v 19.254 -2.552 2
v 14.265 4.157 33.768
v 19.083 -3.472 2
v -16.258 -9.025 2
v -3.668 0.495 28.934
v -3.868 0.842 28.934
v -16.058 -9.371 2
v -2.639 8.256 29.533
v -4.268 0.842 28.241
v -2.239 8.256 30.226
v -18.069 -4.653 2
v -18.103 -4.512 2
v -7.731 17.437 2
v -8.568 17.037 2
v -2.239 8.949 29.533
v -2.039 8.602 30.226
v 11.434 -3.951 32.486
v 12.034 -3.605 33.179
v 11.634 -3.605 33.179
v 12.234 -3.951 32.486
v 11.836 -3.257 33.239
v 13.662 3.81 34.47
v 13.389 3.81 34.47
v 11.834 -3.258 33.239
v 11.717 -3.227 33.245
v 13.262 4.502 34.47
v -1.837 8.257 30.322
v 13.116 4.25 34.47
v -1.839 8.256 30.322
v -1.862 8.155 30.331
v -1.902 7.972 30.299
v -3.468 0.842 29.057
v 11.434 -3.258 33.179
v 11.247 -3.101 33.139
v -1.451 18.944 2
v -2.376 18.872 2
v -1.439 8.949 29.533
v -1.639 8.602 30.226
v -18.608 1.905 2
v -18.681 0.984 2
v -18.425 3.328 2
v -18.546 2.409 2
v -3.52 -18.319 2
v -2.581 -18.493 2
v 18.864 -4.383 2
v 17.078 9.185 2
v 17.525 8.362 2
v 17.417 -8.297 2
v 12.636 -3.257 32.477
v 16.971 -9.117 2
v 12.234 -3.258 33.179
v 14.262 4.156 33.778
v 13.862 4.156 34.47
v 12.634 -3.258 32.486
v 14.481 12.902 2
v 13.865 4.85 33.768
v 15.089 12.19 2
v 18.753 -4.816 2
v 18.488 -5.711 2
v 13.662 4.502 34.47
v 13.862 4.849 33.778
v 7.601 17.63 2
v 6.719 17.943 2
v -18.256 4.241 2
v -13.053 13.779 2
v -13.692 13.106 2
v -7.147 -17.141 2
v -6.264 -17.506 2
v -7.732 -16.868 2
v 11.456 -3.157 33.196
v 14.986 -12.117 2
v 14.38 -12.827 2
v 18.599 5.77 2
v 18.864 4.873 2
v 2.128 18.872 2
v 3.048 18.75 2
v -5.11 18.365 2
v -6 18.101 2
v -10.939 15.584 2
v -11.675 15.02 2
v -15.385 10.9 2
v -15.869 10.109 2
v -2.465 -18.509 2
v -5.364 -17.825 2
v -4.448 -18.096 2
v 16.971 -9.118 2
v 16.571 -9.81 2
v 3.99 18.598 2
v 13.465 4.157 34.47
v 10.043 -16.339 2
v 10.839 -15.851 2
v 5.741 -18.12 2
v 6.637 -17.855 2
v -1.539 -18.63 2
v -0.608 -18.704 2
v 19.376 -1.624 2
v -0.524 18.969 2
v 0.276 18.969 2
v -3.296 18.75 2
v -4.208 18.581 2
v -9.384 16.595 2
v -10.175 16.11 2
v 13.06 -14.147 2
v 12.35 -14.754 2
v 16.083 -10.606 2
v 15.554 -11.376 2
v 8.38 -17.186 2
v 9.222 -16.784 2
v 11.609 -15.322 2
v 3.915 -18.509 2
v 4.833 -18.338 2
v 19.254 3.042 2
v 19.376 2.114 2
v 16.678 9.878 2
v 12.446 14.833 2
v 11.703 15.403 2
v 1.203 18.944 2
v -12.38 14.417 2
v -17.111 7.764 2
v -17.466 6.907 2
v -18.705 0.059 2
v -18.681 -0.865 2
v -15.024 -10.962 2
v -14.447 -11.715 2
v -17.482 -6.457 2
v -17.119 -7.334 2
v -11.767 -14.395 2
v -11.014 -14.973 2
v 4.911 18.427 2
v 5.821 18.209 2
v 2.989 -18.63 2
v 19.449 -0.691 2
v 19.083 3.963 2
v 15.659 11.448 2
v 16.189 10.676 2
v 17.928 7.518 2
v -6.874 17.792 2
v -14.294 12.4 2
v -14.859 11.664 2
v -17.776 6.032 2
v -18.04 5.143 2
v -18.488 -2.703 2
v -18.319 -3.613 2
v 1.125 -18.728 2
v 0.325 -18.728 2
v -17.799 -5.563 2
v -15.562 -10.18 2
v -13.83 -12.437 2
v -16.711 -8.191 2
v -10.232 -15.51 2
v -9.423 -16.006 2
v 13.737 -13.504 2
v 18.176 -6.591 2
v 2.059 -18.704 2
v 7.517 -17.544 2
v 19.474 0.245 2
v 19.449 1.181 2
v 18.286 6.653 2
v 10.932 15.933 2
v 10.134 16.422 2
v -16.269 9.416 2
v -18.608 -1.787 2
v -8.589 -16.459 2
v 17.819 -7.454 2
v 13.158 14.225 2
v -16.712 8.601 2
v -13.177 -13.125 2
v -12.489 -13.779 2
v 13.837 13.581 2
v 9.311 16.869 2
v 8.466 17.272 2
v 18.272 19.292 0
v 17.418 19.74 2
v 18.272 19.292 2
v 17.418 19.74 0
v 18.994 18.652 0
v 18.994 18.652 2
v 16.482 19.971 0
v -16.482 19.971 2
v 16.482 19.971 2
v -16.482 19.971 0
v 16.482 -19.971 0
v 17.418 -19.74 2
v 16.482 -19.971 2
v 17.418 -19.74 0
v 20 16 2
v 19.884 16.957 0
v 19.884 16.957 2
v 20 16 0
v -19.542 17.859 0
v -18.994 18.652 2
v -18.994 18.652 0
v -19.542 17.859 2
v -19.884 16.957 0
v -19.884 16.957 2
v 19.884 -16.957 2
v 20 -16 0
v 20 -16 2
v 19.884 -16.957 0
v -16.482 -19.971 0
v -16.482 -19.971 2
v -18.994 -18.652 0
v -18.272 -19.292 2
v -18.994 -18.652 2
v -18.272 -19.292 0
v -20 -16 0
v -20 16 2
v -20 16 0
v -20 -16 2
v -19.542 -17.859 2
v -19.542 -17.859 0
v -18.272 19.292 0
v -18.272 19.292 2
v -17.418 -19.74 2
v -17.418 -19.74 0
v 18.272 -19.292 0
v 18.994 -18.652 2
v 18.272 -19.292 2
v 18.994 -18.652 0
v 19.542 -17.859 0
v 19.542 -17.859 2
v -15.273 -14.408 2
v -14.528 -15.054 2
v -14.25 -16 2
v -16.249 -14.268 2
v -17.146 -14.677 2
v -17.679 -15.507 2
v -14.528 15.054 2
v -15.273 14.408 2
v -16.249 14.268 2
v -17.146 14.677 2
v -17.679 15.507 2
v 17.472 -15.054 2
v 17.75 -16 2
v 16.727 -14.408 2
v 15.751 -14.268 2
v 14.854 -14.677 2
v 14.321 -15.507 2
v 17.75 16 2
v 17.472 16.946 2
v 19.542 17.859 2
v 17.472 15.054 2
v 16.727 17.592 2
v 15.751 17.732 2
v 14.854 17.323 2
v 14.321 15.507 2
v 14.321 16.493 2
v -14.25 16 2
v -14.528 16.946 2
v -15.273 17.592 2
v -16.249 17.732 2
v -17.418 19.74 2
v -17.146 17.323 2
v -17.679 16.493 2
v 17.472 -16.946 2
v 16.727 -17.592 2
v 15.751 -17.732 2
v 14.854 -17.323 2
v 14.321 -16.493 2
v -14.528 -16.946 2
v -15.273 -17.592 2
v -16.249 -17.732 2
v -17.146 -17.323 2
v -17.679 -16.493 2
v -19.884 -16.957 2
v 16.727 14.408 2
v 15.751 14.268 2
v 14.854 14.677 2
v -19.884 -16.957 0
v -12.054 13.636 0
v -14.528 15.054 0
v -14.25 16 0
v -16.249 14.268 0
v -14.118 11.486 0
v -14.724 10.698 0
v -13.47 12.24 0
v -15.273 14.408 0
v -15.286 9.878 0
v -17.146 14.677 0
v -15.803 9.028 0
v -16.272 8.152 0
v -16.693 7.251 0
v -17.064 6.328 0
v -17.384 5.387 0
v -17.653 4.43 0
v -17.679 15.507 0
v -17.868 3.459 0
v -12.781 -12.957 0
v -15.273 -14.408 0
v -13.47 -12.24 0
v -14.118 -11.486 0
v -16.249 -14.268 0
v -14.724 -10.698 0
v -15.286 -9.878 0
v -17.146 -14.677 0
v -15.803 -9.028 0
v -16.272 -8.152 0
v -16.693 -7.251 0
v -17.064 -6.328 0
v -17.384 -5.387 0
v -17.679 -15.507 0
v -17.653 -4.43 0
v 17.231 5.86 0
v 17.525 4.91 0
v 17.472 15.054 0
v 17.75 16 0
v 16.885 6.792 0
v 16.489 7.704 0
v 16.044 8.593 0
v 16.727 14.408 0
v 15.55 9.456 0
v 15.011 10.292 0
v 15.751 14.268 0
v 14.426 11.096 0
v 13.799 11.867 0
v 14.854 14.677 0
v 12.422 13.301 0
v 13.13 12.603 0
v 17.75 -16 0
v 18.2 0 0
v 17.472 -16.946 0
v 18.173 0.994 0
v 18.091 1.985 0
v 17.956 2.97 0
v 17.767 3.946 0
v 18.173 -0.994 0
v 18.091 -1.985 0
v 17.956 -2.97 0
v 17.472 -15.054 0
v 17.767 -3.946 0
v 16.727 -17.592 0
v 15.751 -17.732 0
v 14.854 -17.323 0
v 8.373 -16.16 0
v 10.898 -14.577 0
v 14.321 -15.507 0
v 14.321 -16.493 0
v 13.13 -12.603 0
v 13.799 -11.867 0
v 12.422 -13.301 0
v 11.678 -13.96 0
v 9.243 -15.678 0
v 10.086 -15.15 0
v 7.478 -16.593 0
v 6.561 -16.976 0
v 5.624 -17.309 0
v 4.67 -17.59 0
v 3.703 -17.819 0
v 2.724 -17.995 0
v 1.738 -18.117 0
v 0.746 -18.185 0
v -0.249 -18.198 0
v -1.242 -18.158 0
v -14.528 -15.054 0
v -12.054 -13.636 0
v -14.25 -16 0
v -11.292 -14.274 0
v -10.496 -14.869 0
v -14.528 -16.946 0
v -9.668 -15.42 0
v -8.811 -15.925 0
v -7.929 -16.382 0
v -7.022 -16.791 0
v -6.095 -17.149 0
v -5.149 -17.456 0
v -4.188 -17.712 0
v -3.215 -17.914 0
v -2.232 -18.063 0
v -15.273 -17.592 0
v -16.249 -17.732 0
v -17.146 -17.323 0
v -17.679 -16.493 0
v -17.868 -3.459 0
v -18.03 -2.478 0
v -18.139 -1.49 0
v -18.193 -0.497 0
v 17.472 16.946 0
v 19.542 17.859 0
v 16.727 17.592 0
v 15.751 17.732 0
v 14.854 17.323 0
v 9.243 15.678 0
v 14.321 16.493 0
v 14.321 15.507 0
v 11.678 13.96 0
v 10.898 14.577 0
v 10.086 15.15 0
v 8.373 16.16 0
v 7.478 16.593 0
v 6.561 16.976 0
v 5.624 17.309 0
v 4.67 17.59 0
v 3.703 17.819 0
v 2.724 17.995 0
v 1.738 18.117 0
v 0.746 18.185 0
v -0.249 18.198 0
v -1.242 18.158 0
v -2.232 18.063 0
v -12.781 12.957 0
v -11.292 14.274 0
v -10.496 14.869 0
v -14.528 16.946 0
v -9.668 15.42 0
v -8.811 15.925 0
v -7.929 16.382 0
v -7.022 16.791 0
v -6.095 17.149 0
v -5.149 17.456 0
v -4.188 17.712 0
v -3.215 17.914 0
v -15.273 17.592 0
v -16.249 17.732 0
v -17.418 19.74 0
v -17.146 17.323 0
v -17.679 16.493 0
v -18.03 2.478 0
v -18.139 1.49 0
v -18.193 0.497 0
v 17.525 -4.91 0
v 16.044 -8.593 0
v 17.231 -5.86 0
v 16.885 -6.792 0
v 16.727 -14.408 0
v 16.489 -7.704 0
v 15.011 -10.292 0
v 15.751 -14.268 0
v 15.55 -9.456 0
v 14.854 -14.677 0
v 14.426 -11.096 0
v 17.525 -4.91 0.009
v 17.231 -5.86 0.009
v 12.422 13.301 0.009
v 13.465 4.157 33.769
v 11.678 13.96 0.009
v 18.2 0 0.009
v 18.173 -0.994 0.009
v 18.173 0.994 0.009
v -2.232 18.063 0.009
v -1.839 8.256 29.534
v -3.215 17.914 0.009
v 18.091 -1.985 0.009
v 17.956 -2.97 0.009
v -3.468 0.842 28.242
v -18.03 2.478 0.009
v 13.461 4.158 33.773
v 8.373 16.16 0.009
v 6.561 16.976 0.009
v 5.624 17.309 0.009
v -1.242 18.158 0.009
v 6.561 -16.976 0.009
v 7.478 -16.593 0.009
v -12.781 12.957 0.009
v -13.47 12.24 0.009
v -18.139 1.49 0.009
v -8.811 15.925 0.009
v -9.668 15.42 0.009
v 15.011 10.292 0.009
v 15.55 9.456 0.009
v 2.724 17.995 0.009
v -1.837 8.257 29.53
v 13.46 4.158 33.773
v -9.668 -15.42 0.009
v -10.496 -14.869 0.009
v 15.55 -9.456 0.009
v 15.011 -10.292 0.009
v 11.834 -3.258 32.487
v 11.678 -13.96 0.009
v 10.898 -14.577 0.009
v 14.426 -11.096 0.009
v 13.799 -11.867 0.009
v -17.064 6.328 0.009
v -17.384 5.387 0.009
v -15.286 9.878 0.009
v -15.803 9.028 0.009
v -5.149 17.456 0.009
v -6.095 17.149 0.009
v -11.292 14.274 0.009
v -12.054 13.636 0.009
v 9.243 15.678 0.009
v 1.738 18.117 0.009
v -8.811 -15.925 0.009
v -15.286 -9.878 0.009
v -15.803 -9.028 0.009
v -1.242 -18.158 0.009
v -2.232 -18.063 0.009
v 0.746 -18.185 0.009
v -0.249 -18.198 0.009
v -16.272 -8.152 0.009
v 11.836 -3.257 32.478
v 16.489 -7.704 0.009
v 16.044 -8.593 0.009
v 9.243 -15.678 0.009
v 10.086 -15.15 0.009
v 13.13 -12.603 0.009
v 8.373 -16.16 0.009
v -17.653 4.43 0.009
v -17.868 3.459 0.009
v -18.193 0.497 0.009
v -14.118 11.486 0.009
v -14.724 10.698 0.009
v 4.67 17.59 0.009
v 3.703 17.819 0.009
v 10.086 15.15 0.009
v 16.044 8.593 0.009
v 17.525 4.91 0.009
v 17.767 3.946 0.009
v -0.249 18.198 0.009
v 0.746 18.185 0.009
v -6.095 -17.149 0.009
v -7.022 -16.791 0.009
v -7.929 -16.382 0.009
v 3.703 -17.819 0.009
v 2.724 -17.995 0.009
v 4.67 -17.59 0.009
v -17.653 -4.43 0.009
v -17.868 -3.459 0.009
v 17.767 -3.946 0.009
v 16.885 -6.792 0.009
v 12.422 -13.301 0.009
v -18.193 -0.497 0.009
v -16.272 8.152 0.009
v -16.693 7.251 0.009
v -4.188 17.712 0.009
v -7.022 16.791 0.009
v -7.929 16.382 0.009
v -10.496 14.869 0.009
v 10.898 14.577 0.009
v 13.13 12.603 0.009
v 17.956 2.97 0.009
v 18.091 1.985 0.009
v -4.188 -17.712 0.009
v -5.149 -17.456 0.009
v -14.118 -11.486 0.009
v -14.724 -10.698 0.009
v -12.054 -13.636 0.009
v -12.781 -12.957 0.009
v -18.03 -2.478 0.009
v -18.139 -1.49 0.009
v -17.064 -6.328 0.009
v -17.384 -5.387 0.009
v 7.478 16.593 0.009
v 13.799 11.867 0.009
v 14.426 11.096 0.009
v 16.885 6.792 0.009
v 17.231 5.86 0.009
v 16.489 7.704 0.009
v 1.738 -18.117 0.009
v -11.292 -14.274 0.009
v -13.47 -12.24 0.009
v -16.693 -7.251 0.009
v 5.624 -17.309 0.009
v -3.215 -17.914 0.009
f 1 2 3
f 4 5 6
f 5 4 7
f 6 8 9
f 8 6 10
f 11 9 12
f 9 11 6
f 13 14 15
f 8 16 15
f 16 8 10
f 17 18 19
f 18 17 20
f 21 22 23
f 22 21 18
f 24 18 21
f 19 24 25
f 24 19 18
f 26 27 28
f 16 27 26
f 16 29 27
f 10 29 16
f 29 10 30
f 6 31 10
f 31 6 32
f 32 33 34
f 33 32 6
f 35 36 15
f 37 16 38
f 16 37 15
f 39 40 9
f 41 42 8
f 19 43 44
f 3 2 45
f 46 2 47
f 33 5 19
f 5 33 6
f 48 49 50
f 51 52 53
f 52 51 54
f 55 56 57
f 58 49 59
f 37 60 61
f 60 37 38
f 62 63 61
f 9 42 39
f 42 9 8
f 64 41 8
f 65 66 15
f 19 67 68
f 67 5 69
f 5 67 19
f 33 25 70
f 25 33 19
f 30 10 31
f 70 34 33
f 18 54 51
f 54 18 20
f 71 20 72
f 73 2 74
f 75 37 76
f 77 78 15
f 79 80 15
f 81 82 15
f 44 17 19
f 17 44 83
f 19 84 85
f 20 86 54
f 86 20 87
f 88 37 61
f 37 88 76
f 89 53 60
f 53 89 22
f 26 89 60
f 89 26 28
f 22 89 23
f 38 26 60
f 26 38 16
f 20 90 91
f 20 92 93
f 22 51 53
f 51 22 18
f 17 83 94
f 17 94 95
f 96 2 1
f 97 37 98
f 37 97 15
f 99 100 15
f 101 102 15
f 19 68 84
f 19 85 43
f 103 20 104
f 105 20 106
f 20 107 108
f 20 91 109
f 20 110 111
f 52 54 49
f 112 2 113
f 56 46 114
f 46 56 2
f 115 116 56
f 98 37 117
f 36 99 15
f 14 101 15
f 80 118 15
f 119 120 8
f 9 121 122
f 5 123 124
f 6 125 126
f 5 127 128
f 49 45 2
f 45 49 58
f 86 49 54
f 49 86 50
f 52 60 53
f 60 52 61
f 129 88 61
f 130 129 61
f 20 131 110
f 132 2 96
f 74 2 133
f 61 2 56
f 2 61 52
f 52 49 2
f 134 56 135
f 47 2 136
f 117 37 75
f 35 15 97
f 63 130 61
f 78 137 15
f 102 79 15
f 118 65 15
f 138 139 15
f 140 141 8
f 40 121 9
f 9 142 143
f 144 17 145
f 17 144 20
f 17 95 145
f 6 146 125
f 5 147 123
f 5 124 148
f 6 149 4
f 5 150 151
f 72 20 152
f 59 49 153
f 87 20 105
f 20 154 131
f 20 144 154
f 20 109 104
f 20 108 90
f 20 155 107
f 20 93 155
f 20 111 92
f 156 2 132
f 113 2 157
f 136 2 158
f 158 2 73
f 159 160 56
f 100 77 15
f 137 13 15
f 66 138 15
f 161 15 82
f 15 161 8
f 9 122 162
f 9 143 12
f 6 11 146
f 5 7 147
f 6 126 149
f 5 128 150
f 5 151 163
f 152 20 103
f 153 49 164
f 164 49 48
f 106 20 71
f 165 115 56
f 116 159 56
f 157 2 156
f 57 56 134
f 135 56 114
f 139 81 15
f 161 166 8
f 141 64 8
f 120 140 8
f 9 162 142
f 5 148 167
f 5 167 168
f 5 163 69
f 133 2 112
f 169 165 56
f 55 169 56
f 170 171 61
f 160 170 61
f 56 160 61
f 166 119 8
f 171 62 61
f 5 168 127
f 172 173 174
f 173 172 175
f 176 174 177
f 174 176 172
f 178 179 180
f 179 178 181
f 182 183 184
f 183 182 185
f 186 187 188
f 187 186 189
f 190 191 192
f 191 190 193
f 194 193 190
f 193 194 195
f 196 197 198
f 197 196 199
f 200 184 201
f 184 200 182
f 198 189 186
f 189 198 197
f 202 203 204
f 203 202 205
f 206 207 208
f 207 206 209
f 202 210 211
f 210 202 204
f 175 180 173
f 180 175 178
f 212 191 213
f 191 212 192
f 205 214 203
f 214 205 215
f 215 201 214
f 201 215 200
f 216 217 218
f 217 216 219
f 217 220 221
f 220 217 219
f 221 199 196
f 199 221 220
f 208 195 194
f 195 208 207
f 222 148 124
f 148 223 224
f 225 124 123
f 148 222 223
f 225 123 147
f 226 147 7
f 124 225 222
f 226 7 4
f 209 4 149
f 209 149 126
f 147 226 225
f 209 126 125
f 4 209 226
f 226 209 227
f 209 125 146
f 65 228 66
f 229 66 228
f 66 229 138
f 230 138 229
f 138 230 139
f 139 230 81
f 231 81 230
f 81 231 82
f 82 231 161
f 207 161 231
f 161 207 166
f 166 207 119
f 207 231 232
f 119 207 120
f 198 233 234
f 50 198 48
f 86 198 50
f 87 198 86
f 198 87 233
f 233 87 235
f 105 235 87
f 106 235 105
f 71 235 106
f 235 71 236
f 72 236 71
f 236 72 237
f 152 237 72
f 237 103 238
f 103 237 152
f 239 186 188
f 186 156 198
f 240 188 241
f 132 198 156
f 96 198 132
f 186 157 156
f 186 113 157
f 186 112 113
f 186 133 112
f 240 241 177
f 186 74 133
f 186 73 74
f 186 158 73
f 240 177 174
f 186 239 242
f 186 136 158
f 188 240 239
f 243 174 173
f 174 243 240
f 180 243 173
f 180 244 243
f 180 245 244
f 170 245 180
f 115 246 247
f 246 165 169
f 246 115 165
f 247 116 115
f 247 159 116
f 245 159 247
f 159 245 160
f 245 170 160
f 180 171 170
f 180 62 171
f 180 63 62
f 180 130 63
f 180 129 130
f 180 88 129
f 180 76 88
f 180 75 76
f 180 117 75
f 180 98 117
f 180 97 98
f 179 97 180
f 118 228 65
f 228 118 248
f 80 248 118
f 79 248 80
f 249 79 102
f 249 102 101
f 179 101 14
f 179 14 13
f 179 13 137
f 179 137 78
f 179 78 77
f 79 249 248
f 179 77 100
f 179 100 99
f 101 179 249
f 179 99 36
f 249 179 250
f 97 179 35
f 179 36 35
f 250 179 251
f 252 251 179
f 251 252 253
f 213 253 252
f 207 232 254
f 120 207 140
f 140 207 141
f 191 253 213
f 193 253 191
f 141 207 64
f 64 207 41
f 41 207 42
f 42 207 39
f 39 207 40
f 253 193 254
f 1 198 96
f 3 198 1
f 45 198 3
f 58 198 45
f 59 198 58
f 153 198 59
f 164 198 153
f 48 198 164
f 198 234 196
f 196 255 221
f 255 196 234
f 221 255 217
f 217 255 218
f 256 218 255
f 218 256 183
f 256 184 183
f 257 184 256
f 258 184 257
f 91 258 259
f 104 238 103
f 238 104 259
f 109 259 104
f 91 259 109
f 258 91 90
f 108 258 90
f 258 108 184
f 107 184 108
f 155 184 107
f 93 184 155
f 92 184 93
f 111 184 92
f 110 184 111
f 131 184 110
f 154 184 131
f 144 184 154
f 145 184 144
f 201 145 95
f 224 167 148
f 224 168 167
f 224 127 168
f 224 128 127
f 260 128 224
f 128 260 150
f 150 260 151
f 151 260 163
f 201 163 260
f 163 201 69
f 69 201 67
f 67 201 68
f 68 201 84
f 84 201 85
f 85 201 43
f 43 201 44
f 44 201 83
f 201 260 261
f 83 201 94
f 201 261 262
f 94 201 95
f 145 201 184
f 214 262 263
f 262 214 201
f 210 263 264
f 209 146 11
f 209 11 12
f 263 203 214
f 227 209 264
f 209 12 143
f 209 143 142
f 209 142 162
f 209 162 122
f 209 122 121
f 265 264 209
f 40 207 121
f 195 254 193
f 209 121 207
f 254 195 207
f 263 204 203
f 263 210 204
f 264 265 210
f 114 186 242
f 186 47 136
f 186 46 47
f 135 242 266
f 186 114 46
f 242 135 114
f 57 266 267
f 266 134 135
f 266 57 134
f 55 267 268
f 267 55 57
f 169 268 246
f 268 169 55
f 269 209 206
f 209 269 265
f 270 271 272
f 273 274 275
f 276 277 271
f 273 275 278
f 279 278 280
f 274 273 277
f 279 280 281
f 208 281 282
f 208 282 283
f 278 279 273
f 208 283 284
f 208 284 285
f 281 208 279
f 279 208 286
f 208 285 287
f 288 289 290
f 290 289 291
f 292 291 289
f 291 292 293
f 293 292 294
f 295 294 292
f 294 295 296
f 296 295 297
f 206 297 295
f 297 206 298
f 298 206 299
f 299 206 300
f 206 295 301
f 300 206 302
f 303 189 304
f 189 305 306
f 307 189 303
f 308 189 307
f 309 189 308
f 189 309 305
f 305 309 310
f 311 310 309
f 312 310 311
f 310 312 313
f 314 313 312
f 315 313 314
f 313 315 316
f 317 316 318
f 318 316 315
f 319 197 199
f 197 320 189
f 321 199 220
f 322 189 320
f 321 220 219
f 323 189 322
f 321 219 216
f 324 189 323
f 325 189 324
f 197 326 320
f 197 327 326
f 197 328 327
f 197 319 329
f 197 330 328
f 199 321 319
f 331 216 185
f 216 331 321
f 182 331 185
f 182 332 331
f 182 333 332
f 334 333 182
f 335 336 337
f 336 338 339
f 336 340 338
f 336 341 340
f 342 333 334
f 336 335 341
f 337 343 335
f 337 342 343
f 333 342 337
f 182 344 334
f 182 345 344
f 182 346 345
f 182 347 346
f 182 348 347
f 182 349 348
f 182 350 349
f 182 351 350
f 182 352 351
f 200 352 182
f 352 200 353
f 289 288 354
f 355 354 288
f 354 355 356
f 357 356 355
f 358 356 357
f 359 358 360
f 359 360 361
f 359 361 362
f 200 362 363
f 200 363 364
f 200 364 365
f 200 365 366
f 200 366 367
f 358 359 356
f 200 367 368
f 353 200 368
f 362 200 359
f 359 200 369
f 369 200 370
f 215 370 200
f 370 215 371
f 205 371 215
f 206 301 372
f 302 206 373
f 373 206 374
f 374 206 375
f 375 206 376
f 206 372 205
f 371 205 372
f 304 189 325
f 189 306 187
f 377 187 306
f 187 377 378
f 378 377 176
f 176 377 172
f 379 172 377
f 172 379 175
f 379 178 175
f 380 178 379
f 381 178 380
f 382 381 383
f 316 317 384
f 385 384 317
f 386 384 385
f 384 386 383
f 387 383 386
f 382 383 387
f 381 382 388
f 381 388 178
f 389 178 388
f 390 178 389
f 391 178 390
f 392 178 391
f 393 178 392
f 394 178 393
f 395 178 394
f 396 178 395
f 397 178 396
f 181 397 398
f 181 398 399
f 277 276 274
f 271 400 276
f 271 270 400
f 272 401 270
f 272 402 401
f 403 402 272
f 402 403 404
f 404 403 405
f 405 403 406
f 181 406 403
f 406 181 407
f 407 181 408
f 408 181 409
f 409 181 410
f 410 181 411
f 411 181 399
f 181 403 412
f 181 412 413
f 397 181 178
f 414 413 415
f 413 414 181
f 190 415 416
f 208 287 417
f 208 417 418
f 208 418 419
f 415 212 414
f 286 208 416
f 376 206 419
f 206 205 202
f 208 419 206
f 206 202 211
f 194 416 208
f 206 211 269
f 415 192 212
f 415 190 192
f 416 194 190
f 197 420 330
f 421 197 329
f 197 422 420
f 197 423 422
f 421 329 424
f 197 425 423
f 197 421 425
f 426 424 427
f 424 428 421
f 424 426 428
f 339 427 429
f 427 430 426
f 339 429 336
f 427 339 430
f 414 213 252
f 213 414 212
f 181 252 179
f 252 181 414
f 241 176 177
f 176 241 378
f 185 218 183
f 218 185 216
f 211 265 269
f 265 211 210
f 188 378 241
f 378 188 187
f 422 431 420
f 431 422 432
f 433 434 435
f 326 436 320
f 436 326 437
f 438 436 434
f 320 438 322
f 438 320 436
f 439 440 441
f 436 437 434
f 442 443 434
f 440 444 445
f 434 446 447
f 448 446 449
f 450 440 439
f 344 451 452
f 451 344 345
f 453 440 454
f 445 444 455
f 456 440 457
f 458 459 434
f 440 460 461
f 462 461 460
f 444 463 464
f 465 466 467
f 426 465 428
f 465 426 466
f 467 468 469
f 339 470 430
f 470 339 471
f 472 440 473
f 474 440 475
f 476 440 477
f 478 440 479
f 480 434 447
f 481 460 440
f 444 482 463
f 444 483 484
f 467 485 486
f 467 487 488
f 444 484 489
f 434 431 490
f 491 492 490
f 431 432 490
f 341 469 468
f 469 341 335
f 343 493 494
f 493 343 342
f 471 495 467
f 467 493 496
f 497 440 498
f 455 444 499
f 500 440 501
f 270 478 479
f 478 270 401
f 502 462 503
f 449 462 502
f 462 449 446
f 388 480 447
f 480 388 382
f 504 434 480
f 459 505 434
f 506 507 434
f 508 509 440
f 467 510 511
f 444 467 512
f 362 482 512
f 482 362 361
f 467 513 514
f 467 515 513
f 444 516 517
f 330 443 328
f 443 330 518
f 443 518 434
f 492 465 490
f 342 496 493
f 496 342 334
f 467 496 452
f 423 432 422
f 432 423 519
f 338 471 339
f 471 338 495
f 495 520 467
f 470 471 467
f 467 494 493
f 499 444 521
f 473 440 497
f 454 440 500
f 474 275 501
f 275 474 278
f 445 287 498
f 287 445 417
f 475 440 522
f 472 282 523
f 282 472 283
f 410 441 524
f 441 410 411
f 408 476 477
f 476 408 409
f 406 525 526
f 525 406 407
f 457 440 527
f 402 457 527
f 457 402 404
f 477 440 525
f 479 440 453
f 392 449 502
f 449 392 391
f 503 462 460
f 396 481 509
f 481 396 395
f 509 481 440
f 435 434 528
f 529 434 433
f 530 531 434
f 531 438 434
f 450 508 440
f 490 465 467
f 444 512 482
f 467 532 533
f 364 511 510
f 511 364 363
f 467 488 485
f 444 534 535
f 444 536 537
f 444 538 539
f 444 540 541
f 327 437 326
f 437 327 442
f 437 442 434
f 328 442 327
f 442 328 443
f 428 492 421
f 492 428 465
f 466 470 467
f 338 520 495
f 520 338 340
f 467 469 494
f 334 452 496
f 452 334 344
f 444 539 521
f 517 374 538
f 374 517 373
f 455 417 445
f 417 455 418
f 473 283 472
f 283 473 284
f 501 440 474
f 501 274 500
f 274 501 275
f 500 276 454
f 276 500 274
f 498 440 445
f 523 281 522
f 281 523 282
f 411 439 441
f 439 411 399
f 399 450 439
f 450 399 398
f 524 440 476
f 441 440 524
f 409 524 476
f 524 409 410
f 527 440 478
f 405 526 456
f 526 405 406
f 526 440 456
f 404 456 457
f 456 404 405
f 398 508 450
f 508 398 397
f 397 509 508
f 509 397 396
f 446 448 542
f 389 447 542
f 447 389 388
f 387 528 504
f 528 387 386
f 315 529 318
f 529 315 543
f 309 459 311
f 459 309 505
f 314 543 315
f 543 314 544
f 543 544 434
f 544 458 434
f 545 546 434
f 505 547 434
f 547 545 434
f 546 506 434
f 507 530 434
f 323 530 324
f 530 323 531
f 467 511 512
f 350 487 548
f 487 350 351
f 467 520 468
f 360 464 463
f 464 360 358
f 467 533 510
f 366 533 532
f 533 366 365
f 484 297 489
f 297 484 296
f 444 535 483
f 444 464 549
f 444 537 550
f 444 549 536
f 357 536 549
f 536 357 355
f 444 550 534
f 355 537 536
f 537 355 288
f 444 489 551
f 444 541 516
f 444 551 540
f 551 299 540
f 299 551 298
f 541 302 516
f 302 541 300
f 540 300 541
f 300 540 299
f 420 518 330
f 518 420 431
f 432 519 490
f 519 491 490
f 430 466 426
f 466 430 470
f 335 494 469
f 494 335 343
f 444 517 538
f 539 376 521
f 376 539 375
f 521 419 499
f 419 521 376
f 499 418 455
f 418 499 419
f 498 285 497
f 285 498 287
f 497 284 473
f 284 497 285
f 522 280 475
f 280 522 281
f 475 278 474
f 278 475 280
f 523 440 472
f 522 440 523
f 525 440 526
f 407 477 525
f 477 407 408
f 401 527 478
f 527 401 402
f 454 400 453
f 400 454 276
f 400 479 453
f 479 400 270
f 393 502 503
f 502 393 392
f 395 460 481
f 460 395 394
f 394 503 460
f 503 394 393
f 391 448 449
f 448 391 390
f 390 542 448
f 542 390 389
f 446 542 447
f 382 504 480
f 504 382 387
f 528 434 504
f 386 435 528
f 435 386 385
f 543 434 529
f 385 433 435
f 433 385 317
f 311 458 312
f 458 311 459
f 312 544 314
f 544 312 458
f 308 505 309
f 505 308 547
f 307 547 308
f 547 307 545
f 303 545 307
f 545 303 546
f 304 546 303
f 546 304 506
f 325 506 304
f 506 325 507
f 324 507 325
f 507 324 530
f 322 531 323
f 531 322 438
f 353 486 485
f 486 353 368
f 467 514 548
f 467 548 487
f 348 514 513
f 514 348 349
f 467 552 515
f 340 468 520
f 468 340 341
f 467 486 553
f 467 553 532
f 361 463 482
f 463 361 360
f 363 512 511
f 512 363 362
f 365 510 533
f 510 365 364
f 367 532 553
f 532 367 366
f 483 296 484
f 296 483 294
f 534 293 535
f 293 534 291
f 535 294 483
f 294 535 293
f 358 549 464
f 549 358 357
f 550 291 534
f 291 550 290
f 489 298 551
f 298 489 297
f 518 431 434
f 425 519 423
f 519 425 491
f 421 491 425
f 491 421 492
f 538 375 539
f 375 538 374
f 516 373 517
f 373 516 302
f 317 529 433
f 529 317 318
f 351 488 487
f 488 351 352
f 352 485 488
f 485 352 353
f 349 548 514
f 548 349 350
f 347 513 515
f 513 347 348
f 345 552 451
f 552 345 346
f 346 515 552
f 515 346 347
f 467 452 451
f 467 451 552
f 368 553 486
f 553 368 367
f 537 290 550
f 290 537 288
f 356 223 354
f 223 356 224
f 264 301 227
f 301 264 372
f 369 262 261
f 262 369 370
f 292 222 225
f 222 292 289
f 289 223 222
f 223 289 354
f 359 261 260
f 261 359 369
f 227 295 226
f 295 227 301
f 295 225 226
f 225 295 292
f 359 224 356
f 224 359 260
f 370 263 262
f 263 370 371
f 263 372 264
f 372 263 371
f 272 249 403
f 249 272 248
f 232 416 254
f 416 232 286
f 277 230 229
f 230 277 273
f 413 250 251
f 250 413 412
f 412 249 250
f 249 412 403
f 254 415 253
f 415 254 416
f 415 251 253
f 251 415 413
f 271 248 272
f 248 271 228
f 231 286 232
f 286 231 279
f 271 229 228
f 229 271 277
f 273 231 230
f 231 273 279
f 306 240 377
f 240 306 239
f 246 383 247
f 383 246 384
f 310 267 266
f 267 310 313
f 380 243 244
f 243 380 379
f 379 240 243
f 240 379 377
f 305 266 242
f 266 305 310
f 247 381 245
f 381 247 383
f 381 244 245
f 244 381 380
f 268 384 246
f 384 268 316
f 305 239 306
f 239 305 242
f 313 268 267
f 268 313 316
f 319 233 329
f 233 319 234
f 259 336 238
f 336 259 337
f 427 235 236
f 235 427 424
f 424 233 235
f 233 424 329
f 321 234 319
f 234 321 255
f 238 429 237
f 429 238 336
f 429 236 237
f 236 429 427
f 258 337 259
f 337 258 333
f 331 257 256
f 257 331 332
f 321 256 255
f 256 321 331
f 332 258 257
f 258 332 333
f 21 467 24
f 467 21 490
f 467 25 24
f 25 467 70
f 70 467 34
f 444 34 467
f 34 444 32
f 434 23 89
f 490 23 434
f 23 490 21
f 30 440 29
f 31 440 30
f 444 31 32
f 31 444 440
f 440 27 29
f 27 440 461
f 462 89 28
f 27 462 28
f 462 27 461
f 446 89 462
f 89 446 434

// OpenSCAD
$fa=1;
$fs=1;
fansize=40;
corner_r=4;
nozzle_l=28+3;
ep=0.001;
nozzle_r=19;
scale=.5;
holespace=32;
m3_slot=3.5;
bracket_h=2;
wall=.8;
module base(size)
{
    linear_extrude(height=.01)circle(r = size,center=true);
}
module tip(size)
{
    //rotate([0,-20,0])linear_extrude(height=.01)circle(r = size,center=true);
    rotate([10,-15,-15])linear_extrude(height=.01)square([size*2-1,size-1],center=true);
}
tip_x=5;
tip_y=3+-.5;
difference()
{
    union()
    {
        minkowski()
        {
            hull()
            {
                base(nozzle_r);
                translate([tip_x,tip_y,nozzle_l])tip((nozzle_r/2)-wall);
            }
                sphere(r=wall);
        }
        translate([0,0,0])linear_extrude(height=bracket_h)minkowski()
        {
            square([fansize-(corner_r*2),fansize-(corner_r*2)],center=true);
            circle(r=corner_r);
        }
    }
    hull()
        {
            translate([0, 0, -ep])base(nozzle_r-wall);
            translate([0, 0, +ep])translate([tip_x,tip_y,nozzle_l])tip((nozzle_r/2)-wall);
        }
    
    translate([-holespace/2,-holespace/2,bracket_h/2])cylinder(h=bracket_h*2,r=(m3_slot/2),center=true);
        translate([-holespace/2,holespace/2,bracket_h/2])cylinder(h=bracket_h*2,r=(m3_slot/2),center=true);
        translate([holespace/2,holespace/2,bracket_h/2])cylinder(h=bracket_h*2,r=(m3_slot/2),center=true);
        translate([holespace/2,-holespace/2,bracket_h/2])cylinder(h=bracket_h*2,r=(m3_slot/2),center=true);
        
        translate([0,0,-50])cube([100,100,100],center=true);
        hull()
        {
            translate([tip_x,tip_y,nozzle_l])tip((nozzle_r/2)-wall);
            translate([tip_x,tip_y,nozzle_l+wall*2])tip((nozzle_r/2)-wall);
        }
}
//import("../stl/nozzle.stl");
